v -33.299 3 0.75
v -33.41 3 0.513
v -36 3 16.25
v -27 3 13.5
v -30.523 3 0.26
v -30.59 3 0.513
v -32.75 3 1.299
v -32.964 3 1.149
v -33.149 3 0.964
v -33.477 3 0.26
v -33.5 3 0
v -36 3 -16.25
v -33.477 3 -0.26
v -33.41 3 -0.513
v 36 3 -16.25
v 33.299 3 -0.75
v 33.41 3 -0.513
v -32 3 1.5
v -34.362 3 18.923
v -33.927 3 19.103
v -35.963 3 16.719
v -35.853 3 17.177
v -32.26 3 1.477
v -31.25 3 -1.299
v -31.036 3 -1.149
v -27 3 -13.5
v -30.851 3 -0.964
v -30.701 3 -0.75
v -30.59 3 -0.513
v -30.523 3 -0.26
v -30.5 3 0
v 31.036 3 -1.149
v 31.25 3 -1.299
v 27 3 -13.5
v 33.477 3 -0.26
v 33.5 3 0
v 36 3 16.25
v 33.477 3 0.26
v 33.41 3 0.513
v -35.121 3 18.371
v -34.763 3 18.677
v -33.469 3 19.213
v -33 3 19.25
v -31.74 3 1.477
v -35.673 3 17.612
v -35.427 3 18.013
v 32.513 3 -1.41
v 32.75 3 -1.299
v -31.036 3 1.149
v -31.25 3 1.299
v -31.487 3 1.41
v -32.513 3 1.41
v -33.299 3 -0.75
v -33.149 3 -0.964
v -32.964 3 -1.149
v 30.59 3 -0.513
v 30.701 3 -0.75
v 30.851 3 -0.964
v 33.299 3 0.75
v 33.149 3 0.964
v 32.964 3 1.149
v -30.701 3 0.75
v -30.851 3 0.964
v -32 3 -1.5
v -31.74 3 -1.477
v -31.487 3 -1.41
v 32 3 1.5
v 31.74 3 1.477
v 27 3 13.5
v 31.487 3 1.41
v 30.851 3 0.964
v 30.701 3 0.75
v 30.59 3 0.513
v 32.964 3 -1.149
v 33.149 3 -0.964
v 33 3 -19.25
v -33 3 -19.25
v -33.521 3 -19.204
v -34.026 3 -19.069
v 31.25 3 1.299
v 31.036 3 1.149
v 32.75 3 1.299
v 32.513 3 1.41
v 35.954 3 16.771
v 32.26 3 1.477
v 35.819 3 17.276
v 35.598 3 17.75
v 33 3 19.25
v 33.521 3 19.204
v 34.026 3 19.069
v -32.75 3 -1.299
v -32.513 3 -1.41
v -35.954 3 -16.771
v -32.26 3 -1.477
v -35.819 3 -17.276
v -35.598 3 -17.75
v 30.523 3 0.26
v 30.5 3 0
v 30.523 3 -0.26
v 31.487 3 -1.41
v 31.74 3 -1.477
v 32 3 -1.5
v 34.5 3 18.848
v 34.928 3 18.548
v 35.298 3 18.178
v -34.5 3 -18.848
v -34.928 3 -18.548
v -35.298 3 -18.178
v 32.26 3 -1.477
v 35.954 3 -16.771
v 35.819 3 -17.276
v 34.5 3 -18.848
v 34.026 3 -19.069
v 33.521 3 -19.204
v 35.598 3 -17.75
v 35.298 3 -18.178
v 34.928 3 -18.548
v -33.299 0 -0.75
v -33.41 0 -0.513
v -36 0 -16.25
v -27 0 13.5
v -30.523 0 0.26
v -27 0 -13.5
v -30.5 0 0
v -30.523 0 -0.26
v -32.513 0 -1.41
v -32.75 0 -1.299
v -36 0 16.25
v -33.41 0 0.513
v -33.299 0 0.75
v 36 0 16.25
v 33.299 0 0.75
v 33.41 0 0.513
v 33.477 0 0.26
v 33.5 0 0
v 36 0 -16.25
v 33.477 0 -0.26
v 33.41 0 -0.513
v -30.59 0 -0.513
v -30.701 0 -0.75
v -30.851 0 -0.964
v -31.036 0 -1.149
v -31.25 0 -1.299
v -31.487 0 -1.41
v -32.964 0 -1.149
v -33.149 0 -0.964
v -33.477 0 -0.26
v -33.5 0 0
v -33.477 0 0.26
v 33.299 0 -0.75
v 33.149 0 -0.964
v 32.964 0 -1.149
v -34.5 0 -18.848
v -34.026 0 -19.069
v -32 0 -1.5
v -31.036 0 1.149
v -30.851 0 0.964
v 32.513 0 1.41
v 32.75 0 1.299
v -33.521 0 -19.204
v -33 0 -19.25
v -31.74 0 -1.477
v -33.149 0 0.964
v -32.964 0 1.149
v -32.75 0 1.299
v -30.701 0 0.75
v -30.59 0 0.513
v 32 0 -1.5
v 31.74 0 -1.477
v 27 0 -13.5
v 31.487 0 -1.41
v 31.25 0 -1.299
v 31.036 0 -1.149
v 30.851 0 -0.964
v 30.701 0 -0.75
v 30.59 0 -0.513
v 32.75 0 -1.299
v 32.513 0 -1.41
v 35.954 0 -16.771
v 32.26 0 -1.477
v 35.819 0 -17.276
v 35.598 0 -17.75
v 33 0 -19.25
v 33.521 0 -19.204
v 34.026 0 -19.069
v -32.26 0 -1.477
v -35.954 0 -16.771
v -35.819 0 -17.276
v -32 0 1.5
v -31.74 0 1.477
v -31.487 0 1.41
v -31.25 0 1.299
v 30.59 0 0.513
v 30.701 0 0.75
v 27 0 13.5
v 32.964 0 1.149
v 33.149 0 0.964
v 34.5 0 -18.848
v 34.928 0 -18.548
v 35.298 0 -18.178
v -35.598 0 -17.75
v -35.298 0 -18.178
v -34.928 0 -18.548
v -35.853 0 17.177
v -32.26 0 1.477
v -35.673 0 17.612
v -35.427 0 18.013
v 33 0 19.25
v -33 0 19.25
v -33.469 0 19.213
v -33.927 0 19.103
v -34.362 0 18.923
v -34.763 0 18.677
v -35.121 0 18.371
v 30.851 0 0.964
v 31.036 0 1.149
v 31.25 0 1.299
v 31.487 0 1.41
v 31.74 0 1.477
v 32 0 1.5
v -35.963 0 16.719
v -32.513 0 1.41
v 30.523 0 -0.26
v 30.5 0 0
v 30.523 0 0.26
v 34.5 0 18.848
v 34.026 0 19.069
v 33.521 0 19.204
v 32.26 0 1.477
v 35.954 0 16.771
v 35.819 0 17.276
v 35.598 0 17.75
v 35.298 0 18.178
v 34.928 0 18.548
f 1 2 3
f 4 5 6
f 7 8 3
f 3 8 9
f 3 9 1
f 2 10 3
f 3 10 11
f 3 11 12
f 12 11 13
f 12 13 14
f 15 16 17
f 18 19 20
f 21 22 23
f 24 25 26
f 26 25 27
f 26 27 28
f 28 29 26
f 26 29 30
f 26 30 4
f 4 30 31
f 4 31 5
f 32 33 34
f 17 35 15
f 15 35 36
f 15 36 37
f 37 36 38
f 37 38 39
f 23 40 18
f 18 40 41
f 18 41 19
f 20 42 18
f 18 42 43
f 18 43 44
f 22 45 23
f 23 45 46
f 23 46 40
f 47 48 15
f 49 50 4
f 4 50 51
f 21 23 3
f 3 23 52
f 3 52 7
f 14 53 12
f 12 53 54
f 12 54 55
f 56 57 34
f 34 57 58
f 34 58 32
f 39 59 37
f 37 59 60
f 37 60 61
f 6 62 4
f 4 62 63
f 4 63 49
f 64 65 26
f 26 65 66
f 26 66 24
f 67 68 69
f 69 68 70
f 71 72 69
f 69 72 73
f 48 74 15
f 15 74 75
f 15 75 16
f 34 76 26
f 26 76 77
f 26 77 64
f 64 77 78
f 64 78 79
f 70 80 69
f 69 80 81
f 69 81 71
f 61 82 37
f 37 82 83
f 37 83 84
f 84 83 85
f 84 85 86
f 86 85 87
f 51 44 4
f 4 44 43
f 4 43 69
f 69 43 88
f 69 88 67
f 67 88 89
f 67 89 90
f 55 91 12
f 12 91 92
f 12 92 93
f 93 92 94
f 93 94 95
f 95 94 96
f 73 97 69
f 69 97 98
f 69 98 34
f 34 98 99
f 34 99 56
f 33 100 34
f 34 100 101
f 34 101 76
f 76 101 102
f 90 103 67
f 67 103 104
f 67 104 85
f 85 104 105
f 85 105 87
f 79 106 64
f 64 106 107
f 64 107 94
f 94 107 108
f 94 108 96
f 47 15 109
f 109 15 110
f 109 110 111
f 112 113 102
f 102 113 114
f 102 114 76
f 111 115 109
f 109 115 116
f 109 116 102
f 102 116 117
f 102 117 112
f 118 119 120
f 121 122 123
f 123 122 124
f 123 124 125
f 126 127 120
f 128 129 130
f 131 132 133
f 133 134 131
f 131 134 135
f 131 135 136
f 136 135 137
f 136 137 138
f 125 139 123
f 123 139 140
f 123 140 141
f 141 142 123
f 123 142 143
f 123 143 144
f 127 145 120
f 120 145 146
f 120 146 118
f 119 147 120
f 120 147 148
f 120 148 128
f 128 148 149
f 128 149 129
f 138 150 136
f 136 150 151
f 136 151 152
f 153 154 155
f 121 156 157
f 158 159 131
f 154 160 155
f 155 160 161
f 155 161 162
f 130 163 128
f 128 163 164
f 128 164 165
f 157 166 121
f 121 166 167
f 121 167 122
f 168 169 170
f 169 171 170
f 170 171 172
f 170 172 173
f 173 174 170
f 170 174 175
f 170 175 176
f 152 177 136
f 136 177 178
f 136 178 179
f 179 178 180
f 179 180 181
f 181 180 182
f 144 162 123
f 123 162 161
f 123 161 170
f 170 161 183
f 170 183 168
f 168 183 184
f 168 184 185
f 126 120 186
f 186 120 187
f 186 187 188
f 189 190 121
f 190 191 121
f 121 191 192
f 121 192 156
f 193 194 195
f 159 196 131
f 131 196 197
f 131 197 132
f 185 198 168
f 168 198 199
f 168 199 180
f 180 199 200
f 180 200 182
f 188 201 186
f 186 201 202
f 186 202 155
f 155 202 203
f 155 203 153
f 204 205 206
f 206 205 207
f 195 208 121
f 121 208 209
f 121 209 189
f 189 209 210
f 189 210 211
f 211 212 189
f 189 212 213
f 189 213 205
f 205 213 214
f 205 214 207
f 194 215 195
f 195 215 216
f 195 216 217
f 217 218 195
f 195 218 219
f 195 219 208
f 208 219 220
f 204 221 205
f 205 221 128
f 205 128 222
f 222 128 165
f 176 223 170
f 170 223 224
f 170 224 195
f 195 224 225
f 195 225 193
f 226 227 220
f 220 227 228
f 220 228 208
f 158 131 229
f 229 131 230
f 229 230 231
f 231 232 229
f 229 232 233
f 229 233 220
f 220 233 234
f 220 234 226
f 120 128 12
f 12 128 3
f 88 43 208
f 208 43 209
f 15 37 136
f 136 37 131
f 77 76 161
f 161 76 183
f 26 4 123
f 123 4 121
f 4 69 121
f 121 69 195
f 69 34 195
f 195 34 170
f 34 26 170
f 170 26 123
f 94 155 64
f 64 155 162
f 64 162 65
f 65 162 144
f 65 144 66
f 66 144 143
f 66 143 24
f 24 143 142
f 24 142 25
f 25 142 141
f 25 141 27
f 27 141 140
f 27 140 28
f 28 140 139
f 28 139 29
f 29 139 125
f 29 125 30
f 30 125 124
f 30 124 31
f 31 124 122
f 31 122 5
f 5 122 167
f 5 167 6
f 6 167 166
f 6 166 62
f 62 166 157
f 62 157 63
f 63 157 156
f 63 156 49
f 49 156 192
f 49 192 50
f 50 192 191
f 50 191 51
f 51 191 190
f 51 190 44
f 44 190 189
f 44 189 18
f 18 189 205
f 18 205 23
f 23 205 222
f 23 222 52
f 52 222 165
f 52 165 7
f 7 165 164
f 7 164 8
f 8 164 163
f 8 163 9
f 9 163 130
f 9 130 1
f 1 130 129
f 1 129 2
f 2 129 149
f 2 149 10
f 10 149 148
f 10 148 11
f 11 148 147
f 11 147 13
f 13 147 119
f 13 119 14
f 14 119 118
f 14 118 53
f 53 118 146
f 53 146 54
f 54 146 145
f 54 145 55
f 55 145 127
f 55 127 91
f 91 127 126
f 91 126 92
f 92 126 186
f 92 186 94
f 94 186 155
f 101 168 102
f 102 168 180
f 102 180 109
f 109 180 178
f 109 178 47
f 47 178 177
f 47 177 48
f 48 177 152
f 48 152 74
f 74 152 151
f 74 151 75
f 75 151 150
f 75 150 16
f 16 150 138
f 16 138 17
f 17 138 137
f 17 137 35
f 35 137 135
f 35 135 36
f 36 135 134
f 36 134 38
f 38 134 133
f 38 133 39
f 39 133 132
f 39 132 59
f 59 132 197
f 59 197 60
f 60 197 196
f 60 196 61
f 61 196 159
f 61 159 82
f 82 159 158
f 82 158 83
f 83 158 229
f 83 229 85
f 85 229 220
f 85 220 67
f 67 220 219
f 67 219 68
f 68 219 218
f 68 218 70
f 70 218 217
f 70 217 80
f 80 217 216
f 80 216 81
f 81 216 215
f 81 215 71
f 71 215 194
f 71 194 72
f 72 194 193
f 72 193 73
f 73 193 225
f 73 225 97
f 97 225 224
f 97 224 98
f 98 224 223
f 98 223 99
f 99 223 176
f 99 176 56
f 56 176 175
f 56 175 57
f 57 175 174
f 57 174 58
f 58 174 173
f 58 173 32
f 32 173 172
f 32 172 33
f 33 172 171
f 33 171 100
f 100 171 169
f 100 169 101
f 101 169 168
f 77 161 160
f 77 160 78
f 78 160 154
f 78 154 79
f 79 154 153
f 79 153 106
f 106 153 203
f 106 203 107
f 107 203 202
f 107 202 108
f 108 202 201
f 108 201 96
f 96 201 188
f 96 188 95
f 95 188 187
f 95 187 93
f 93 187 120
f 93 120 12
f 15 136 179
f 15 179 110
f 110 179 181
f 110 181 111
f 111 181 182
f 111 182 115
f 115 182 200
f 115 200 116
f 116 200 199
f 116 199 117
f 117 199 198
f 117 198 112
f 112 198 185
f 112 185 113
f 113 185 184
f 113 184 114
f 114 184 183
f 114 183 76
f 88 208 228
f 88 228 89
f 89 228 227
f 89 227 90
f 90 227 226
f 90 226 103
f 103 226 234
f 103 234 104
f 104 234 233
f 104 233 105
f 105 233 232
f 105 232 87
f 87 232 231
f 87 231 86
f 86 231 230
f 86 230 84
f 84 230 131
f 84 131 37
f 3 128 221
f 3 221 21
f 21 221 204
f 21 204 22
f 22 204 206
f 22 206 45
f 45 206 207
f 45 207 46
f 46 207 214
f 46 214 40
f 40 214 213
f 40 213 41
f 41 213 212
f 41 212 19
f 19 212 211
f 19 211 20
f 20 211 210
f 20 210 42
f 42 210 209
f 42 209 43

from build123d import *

# Parameters (mm, degrees)
SKETCH1_W           = 72
SKETCH1_H           = 38.5
SKETCH1_R           = 1.5
SKETCH1_W_2         = 54
SKETCH1_H_2         = 27
BOSS_EXTRUDE1_DEPTH = 3
FILLET1_R           = 3


with BuildPart() as part:
    # Sketch1 → Boss-Extrude1 (new body)
    with BuildSketch(Plane(origin=(0, 0, 0), x_dir=(1, 0, 0), z_dir=(0, 1, 0))):
        Rectangle(SKETCH1_W, SKETCH1_H)
        with Locations((-32, 0)):
            Circle(SKETCH1_R, mode=Mode.SUBTRACT)
        with Locations((32, 0)):
            Circle(SKETCH1_R, mode=Mode.SUBTRACT)
        Rectangle(SKETCH1_W_2, SKETCH1_H_2, mode=Mode.SUBTRACT)
    extrude(amount=BOSS_EXTRUDE1_DEPTH)

    # Fillet1
    fillet1_edges = [part.edges().sort_by_distance(p)[0] for p in [
        (-36, 1.5, -19.25),
        (36, 1.5, -19.25),
        (36, 1.5, 19.25),
        (-36, 1.5, 19.25),
    ]]
    fillet(fillet1_edges, radius=FILLET1_R)


solid = part.part
